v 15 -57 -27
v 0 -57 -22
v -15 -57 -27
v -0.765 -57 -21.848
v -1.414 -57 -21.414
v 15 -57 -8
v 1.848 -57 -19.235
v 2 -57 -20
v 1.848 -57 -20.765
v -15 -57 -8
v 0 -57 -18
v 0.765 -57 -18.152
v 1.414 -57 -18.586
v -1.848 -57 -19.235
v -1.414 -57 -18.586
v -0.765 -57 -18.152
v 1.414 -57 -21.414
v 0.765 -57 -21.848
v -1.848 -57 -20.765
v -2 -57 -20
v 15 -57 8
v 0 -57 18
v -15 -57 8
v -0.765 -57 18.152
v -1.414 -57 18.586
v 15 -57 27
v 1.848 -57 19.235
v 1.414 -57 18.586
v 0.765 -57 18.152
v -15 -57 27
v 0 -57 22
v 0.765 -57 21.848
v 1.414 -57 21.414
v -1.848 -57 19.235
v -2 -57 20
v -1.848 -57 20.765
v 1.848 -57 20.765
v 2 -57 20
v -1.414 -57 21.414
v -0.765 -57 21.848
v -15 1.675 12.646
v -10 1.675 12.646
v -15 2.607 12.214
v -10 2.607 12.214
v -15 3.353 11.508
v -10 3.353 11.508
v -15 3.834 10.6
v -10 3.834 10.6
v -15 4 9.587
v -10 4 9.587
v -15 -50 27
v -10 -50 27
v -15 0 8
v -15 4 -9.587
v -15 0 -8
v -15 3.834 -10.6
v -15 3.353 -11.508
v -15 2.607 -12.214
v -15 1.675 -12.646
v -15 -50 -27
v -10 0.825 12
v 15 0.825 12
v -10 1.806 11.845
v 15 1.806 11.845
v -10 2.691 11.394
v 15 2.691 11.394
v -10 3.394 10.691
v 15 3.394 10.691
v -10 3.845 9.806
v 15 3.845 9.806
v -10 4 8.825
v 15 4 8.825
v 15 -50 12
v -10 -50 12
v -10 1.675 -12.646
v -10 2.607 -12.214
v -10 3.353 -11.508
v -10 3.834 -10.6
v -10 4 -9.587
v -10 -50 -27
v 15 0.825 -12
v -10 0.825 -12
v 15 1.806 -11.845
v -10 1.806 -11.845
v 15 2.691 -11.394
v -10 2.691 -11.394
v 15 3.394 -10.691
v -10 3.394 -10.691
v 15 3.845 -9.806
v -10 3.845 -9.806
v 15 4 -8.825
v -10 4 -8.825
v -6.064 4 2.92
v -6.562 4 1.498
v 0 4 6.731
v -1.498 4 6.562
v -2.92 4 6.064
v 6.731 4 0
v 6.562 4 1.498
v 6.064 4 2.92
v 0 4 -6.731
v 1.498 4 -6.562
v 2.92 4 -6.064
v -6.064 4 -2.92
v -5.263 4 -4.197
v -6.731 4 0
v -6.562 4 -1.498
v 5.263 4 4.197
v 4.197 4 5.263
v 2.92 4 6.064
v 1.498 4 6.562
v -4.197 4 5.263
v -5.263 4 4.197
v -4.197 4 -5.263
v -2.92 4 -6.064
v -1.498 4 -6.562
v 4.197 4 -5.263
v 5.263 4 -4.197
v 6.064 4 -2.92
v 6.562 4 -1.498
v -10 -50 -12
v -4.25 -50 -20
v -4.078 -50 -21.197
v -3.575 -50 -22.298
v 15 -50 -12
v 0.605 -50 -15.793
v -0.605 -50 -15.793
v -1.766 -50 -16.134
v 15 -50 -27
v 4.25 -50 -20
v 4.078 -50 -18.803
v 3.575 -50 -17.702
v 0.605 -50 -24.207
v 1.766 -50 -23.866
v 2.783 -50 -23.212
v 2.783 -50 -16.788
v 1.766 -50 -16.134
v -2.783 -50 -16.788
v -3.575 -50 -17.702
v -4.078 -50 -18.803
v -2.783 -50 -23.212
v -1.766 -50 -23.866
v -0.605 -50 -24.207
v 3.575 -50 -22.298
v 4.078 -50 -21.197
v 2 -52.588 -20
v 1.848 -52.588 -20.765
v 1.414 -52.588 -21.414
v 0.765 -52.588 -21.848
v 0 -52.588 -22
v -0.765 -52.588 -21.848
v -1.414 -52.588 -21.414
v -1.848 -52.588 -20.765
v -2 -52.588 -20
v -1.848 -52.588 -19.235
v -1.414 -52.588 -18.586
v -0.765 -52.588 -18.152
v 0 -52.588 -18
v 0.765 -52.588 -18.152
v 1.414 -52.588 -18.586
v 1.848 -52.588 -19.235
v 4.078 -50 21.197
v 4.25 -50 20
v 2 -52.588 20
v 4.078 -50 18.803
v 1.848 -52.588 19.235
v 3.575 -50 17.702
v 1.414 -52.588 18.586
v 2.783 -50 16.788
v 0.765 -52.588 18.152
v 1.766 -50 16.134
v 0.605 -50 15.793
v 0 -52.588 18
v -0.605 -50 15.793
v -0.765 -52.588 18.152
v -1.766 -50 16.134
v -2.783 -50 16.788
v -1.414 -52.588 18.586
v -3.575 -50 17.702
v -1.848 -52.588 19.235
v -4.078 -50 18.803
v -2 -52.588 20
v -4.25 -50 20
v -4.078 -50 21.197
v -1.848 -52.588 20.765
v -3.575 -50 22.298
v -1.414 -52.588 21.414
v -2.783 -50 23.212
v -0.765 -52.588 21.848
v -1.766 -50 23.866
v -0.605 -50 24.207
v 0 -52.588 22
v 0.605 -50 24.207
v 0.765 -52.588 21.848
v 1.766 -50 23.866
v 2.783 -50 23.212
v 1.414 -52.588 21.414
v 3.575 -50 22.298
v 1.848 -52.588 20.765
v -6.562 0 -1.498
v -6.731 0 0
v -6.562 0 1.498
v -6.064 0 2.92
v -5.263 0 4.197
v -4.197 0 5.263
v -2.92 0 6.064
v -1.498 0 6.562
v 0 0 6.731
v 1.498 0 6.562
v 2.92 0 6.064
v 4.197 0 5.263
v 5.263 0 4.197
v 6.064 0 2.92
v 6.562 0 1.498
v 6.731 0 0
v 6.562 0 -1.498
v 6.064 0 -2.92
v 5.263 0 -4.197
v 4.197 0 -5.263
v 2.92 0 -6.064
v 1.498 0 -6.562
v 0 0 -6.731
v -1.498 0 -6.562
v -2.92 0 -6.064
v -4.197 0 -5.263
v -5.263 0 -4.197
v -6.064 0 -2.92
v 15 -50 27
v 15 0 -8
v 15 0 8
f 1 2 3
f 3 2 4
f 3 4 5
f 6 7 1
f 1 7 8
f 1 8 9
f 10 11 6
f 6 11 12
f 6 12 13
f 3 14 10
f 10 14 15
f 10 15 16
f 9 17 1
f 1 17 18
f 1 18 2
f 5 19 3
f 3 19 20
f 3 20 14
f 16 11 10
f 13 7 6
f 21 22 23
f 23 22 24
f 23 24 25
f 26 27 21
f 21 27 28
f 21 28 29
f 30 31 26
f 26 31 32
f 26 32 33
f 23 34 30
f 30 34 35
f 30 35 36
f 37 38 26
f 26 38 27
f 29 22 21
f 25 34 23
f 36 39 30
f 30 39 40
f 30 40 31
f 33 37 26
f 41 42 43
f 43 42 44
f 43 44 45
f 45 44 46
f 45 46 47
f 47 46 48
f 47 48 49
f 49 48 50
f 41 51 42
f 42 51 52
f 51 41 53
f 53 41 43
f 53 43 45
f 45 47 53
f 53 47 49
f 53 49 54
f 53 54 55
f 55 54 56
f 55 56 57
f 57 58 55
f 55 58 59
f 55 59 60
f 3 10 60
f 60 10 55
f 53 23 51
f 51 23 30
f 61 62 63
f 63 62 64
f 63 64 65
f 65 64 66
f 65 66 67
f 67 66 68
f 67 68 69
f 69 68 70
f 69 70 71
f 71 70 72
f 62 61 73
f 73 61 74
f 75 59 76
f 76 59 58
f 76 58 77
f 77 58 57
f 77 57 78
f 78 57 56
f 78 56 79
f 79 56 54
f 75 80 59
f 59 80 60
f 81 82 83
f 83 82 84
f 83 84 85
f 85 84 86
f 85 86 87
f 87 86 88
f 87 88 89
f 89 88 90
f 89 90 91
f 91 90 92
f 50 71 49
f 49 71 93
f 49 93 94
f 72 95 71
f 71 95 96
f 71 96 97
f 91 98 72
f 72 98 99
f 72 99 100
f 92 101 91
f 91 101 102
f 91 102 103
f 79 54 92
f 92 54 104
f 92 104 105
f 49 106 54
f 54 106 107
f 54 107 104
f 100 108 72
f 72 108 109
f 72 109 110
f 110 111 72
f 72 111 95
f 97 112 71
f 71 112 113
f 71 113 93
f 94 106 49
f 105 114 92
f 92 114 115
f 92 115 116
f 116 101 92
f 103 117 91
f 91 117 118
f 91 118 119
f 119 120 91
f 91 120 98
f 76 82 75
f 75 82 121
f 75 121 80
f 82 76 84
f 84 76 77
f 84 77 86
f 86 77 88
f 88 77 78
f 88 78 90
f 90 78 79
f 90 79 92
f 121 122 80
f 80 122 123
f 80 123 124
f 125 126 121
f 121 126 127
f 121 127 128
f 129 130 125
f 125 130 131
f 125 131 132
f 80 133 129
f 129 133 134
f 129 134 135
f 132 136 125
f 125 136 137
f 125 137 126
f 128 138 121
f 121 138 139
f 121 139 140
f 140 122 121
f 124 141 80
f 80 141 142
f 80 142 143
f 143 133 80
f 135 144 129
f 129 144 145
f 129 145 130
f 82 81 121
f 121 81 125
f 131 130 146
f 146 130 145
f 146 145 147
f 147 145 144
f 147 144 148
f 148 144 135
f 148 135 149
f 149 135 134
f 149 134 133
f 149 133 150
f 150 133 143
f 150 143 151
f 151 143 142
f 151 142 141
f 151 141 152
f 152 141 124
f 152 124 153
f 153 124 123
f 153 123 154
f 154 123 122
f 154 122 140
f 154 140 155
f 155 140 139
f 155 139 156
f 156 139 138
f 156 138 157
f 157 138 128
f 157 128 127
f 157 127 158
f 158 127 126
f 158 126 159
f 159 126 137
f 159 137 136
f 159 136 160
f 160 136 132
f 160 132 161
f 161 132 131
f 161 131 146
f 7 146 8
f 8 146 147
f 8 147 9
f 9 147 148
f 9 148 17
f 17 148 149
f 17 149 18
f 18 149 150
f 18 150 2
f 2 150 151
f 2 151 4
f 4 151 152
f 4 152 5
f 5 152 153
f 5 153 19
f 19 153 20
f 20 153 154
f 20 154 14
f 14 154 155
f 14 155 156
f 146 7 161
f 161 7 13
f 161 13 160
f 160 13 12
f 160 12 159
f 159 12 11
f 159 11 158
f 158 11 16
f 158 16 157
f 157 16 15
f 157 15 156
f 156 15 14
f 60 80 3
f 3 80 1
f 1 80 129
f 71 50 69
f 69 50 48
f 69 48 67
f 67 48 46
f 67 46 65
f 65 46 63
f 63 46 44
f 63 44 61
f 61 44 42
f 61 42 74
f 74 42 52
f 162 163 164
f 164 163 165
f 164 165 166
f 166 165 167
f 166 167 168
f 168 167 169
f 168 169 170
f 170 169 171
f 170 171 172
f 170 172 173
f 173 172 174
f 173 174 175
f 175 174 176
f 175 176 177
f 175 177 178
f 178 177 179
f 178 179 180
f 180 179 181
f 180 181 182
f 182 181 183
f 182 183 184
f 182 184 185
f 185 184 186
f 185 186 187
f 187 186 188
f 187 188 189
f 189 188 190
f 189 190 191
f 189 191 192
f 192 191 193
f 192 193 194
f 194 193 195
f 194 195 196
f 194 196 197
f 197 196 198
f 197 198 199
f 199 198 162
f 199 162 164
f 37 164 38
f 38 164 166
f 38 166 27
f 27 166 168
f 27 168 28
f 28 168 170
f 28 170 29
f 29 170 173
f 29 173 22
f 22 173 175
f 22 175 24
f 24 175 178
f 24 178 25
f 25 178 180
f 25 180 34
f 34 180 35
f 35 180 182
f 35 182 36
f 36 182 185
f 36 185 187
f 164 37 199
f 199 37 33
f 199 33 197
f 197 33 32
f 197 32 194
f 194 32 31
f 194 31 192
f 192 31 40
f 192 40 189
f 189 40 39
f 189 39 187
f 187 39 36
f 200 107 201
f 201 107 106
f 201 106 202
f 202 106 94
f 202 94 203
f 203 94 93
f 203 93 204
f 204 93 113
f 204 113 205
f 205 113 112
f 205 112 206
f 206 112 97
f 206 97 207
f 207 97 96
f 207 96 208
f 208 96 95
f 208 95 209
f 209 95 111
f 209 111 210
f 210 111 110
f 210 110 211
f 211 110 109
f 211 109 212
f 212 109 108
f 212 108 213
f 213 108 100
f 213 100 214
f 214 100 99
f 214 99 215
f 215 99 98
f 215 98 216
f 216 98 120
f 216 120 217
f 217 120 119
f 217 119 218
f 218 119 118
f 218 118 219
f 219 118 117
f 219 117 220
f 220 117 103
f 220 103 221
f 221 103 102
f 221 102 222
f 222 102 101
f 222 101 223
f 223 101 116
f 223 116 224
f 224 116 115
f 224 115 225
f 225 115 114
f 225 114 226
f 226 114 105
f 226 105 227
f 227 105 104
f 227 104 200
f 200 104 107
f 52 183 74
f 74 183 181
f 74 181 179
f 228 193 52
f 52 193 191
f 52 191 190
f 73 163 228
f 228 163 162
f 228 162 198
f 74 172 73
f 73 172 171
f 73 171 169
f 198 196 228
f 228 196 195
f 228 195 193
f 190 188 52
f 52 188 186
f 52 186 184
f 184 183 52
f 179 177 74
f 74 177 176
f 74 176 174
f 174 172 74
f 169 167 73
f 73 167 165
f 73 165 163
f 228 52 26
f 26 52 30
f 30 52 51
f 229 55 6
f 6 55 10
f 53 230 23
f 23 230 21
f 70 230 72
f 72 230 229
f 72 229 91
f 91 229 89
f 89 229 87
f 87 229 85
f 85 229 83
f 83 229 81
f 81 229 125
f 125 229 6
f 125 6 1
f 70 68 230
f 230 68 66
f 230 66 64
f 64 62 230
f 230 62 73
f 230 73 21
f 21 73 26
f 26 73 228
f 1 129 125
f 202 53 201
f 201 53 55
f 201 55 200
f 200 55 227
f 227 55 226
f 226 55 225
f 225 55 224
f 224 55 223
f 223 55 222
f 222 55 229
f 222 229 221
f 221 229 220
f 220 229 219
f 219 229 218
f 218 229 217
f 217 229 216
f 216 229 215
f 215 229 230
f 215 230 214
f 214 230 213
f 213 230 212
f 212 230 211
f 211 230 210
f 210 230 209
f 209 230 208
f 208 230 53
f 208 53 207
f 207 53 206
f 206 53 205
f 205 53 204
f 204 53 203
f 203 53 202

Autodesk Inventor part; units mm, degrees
ref_plane "YZ Plane" through (0, 0, 0) normal (1, 0, 0) x (0, 1, 0)
ref_plane "XZ Plane" through (0, 0, 0) normal (0, 1, 0) x (-1, 0, 0)
ref_plane "XY Plane" through (0, 0, 0) normal (0, 0, 1) x (1, 0, 0)
sketch "Sketch2" plane through (0, 0, 0) normal (0, 1, 0) x (-1, 0, 0)
  line L0 (-15, 12) -> (15, 12)
  line L1 (15, 12) -> (15, -12)
  line L2 (15, -12) -> (-15, -12)
  line L3 (-15, -12) -> (-15, 12)
  line L4 (-15, 12) -> (15, -12) construction
  line L5 (15, 12) -> (-15, -12) construction
  point P0 (0, 0)
  dimension "d5" = 30
  dimension "d6" = 24
extrude "Extrusion2" add sketch "Sketch2" along normal blind 4
sketch "Sketch3" plane through (0, 0, 0) normal (0, -1, 0) x (1, 0, 0)
  line L0 (-15, 12) -> (15, 12) projected
  line L1 (15, 12) -> (-15, 12)
  line L2 (-15, 12) -> (-15, 8)
  line L3 (-15, 8) -> (15, 8)
  line L4 (15, 8) -> (15, 12)
  line L5 (15, -12) -> (-15, -12) projected
  line L6 (-15, -12) -> (15, -12)
  line L7 (15, -12) -> (15, -8)
  line L8 (15, -8) -> (-15, -8)
  line L9 (-15, -8) -> (-15, -12)
  point P0 (0, 0)
  dimension "d9" = 4
  dimension "d10" = 4
extrude "Extrusion3" add sketch "Sketch3" along normal blind 54
sketch "Sketch4" plane through (-15, 4, 12) normal (0, 0, 1) x (1, 0, 0)
  line L0 (0, -58) -> (30, -58) projected
  line L1 (30, -4) -> (30, -58) projected
  line L2 (0, -58) -> (30, -58)
  line L3 (30, -58) -> (30, -54)
  line L4 (30, -54) -> (0, -54)
  line L5 (0, -54) -> (0, -58)
  point P0 (15, -4)
  dimension "d13" = 4
extrude "Extrusion4" add sketch "Sketch4" along normal blind 15
ref_plane "Work Plane1" through (-15, 0, 0) normal (0, 0, 1) x (1, 0, 0)
sketch "Sketch5" plane through (0, 4, 0) normal (0, 1, 0) x (1, 0, 0)
  line L0 (15, -8) -> (15, -27) construction
  line L1 (-15, 12) -> (15, 12) construction
  line L2 (15, -12.0945) -> (-15, 12) construction
  line L3 (-15, 12) -> (15, 12) construction
  line L4 (15, 12) -> (-15, -12.0945) construction
  circle A0 centre (0, 0) radius 6.731
  dimension "d16" = 13.462
extrude "Extrusion5" cut sketch "Sketch5" against normal blind 15.1625
sketch "Sketch6" plane through (-15, -50, 12) normal (0, 1, 0) x (1, 0, 0)
  line L0 (30, -15) -> (0, -15) construction
  line L1 (15, -15) -> (15, -8) construction
  point P0 (15, 12)
  dimension "d19" = 7
hole "Hole1" at (0, -50, 20) direction (0, -1, 0) diameter 4 end through all countersink diameter 8.5 countersink angle 82
sketch "Sketch7" plane through (-15, 4, -12) normal (-1, 0, 0) x (0, 0, 1)
  line L0 (24, -54) -> (39, -54) projected
  line L1 (24, -54) -> (24, 0) projected
  line L2 (39, -54) -> (24, 0)
  line L3 (24, 0) -> (24, -54)
  line L4 (24, -54) -> (39, -54)
  point P0 (12, -4)
extrude "Extrusion6" add sketch "Sketch7" against normal blind 5
mirror "Mirror1" about plane through (-15, 0, 0) normal (0, 0, 1) of "Hole1", "Extrusion6", "Extrusion4"
fillet "Fillet2" radius 3.175 4 edges at (2.5, 4, -12) (-12.5, 4, -12) (2.5, 4, 12) (-12.5, 4, 12)
sketch "Sketch8" plane through (0, -54, 0) normal (0, -1, 0) x (1, 0, 0)
  line L0 (15, 8) -> (15, 27) projected
  line L1 (-15, 8) -> (15, 8) projected
  line L2 (15, 27) -> (-15, 27)
  line L3 (-15, 27) -> (-15, 8)
  line L4 (-15, 8) -> (15, 8)
  line L5 (15, 8) -> (15, 27)
  line L6 (15, 8) -> (15, -8) projected
  line L7 (-10, -27) -> (-15, -27) projected
  line L8 (15, -8) -> (-15, -8)
  line L9 (-15, -8) -> (-15, -27)
  line L10 (-15, -27) -> (15, -27)
  line L11 (15, -27) -> (15, -8)
  circle A0 centre (0, 20) radius 2 projected
  line L12 (-15, 8) -> (-15, 27) projected
  line L13 (-15, 8) -> (15, 8) projected
  line L14 (15, 8) -> (15, 27) projected
  line L15 (-15, 27) -> (15, 27) projected
  circle A1 centre (0, 20) radius 2 projected
  circle A2 centre (0, -20) radius 2 projected
  point P0 (0, 0)
extrude "Extrusion7" add sketch "Sketch8" along normal blind 3
properties part number "Main Power Switch Bracket"
